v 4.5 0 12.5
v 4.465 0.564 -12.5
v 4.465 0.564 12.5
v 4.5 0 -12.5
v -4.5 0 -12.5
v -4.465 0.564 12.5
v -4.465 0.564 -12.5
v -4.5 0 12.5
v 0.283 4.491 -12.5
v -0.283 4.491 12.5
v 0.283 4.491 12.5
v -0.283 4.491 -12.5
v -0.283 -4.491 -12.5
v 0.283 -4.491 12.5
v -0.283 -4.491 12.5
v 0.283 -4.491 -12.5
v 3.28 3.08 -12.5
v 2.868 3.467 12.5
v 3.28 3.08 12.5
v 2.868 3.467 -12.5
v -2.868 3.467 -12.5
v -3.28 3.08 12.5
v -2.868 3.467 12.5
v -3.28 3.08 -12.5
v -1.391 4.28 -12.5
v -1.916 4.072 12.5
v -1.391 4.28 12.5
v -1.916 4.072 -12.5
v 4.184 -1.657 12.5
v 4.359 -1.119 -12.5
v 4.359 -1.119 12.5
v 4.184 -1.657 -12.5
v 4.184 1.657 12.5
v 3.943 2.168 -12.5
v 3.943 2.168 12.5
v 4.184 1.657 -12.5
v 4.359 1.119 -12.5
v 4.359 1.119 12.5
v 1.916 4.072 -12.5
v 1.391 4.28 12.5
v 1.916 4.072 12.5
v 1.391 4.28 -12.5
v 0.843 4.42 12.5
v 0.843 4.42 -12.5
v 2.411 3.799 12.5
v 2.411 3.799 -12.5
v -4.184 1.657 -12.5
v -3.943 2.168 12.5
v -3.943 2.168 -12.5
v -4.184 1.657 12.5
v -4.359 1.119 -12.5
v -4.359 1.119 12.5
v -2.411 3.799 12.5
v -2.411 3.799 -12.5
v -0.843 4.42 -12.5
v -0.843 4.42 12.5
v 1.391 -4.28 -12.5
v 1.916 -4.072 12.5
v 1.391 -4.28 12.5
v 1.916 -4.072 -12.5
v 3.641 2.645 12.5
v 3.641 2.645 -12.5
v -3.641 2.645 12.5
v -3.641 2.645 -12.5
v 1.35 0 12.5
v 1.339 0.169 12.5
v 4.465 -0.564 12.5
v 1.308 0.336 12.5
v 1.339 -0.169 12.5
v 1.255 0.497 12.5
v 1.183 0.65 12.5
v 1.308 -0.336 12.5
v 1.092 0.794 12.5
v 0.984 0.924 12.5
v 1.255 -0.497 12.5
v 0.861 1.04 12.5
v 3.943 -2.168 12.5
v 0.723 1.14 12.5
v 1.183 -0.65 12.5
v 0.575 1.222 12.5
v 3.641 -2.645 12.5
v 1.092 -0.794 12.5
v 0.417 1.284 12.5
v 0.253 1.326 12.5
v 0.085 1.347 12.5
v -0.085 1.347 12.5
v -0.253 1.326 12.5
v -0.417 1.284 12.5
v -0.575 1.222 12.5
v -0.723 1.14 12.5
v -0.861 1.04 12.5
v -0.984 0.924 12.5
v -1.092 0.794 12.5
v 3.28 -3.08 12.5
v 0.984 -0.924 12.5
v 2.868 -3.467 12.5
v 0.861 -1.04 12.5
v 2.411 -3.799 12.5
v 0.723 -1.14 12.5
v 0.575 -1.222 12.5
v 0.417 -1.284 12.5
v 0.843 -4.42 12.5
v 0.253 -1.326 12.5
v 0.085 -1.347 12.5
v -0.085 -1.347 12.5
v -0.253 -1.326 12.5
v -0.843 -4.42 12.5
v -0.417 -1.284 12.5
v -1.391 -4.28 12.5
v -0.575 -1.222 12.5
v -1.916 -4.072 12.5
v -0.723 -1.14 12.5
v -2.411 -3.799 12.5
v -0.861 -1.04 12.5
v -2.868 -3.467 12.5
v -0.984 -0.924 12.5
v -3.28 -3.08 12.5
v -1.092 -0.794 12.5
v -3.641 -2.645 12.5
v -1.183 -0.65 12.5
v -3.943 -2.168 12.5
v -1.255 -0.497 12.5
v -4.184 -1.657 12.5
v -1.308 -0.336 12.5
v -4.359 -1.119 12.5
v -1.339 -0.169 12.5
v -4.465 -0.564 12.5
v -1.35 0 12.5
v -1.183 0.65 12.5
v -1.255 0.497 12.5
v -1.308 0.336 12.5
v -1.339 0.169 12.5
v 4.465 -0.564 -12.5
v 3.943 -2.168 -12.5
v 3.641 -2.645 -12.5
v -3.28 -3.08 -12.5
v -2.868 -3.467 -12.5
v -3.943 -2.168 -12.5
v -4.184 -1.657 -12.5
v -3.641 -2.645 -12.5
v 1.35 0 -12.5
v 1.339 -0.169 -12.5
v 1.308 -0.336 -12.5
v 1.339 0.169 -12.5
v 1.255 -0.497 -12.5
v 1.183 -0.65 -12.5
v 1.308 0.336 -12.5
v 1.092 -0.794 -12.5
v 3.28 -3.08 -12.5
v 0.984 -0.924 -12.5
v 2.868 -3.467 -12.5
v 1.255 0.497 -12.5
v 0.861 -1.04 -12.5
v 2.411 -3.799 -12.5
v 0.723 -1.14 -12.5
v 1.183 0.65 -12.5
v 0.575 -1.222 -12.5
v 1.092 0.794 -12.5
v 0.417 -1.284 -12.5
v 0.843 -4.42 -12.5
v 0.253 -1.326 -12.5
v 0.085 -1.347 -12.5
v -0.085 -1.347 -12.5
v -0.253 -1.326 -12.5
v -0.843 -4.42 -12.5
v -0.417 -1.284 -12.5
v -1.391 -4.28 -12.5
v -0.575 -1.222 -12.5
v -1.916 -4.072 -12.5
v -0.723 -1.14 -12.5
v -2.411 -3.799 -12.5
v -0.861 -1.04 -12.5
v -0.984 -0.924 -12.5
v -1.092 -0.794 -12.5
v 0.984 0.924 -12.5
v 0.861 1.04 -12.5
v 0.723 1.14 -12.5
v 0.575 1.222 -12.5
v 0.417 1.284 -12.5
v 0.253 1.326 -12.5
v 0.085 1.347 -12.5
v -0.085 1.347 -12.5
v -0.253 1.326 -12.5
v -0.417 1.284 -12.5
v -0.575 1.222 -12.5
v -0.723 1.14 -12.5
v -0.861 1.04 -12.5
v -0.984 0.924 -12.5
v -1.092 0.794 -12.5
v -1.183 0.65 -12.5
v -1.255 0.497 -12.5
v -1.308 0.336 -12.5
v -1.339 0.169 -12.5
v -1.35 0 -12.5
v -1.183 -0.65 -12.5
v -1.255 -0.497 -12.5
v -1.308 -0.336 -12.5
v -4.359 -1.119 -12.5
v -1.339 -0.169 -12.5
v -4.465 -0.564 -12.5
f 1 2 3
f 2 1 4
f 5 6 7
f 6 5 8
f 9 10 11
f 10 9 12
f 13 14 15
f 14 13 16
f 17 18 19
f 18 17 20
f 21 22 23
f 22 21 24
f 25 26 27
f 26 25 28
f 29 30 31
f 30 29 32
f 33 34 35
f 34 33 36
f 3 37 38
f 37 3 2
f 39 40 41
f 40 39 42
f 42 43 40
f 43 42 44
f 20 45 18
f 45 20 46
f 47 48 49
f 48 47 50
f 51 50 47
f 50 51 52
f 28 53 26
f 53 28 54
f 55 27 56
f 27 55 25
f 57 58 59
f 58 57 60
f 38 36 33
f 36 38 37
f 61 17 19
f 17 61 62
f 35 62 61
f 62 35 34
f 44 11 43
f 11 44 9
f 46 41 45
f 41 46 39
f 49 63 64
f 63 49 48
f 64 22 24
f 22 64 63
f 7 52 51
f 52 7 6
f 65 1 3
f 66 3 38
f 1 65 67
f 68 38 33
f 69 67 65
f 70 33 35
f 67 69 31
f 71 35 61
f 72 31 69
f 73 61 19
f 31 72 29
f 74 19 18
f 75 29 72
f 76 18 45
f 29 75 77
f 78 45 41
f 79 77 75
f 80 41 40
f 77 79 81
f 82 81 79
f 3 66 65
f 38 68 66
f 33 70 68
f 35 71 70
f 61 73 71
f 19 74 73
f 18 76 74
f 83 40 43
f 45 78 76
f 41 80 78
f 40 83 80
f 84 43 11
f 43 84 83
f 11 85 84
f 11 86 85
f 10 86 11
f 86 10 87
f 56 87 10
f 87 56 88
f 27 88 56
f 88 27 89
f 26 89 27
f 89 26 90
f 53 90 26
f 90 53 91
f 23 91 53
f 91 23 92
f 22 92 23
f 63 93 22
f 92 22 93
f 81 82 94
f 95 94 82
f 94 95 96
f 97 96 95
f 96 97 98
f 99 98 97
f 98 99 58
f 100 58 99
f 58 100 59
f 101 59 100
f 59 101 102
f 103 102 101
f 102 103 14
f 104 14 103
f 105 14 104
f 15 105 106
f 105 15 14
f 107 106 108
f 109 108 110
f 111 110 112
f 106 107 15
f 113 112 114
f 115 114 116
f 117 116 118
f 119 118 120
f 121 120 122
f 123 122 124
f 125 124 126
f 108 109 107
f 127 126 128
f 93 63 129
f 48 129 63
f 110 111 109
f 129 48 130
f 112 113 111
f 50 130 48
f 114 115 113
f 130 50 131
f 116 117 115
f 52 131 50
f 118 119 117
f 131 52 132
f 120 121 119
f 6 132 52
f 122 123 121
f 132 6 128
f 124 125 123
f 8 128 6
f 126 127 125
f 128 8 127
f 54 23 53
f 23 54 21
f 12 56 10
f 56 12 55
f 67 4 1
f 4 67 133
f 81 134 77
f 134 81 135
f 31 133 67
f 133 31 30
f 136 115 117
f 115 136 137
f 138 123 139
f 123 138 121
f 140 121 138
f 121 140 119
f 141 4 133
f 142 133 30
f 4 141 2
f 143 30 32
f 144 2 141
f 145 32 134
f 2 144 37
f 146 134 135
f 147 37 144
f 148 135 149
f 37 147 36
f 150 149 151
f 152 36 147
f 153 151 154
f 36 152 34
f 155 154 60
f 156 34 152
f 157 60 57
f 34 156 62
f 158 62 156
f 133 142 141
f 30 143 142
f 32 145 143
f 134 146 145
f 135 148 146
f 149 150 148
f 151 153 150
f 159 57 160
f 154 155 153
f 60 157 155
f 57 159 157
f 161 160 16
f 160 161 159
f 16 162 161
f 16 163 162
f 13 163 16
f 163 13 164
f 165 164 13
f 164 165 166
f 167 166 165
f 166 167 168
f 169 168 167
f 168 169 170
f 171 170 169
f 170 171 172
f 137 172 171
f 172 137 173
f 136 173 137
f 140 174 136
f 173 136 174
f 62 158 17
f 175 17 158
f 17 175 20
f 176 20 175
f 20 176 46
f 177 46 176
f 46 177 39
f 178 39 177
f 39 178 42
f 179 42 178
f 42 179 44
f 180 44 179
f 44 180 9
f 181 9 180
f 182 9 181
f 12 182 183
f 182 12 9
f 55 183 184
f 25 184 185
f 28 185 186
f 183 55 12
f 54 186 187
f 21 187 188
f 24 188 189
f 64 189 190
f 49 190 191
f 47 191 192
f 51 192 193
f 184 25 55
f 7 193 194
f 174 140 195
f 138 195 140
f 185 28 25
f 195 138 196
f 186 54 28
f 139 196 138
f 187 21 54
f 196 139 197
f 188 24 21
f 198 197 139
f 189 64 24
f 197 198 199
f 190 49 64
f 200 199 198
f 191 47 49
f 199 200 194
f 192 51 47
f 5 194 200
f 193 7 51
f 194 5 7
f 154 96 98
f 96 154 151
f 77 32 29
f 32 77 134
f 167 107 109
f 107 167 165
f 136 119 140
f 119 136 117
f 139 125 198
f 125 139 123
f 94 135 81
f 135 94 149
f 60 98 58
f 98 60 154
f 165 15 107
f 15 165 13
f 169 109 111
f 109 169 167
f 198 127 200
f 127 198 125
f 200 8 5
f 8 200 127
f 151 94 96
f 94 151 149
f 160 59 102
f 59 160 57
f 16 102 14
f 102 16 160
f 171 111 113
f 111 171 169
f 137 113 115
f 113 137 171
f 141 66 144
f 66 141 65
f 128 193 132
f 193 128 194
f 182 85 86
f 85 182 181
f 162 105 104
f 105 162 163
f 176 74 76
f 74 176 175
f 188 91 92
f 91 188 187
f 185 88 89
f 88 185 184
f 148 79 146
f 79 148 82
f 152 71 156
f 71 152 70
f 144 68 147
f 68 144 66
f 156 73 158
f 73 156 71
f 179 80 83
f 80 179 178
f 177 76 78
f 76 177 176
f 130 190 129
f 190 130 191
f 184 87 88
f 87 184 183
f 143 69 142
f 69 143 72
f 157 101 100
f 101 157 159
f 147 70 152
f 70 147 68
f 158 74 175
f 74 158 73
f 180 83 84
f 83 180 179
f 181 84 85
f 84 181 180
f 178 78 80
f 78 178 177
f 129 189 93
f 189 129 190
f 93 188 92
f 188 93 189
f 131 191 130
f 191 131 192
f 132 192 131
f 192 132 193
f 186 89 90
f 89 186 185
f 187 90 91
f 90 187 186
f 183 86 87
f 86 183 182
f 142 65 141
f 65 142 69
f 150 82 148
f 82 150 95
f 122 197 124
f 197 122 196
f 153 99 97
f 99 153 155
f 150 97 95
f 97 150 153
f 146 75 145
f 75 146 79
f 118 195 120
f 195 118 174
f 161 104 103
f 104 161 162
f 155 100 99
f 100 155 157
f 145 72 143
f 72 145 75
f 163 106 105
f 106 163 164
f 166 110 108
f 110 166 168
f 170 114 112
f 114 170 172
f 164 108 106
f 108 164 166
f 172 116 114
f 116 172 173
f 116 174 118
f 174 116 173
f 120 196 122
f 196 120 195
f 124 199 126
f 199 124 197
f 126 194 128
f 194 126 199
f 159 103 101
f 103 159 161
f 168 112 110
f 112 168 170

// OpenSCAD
$fn = 50;


difference() {
	union() {
		translate(v = [0, 0, -12.5000000000]) {
			cylinder(h = 25, r = 4.5000000000);
		}
	}
	union() {
		translate(v = [0, 0, -100.0000000000]) {
			cylinder(h = 200, r = 1.3500000000);
		}
	}
}
